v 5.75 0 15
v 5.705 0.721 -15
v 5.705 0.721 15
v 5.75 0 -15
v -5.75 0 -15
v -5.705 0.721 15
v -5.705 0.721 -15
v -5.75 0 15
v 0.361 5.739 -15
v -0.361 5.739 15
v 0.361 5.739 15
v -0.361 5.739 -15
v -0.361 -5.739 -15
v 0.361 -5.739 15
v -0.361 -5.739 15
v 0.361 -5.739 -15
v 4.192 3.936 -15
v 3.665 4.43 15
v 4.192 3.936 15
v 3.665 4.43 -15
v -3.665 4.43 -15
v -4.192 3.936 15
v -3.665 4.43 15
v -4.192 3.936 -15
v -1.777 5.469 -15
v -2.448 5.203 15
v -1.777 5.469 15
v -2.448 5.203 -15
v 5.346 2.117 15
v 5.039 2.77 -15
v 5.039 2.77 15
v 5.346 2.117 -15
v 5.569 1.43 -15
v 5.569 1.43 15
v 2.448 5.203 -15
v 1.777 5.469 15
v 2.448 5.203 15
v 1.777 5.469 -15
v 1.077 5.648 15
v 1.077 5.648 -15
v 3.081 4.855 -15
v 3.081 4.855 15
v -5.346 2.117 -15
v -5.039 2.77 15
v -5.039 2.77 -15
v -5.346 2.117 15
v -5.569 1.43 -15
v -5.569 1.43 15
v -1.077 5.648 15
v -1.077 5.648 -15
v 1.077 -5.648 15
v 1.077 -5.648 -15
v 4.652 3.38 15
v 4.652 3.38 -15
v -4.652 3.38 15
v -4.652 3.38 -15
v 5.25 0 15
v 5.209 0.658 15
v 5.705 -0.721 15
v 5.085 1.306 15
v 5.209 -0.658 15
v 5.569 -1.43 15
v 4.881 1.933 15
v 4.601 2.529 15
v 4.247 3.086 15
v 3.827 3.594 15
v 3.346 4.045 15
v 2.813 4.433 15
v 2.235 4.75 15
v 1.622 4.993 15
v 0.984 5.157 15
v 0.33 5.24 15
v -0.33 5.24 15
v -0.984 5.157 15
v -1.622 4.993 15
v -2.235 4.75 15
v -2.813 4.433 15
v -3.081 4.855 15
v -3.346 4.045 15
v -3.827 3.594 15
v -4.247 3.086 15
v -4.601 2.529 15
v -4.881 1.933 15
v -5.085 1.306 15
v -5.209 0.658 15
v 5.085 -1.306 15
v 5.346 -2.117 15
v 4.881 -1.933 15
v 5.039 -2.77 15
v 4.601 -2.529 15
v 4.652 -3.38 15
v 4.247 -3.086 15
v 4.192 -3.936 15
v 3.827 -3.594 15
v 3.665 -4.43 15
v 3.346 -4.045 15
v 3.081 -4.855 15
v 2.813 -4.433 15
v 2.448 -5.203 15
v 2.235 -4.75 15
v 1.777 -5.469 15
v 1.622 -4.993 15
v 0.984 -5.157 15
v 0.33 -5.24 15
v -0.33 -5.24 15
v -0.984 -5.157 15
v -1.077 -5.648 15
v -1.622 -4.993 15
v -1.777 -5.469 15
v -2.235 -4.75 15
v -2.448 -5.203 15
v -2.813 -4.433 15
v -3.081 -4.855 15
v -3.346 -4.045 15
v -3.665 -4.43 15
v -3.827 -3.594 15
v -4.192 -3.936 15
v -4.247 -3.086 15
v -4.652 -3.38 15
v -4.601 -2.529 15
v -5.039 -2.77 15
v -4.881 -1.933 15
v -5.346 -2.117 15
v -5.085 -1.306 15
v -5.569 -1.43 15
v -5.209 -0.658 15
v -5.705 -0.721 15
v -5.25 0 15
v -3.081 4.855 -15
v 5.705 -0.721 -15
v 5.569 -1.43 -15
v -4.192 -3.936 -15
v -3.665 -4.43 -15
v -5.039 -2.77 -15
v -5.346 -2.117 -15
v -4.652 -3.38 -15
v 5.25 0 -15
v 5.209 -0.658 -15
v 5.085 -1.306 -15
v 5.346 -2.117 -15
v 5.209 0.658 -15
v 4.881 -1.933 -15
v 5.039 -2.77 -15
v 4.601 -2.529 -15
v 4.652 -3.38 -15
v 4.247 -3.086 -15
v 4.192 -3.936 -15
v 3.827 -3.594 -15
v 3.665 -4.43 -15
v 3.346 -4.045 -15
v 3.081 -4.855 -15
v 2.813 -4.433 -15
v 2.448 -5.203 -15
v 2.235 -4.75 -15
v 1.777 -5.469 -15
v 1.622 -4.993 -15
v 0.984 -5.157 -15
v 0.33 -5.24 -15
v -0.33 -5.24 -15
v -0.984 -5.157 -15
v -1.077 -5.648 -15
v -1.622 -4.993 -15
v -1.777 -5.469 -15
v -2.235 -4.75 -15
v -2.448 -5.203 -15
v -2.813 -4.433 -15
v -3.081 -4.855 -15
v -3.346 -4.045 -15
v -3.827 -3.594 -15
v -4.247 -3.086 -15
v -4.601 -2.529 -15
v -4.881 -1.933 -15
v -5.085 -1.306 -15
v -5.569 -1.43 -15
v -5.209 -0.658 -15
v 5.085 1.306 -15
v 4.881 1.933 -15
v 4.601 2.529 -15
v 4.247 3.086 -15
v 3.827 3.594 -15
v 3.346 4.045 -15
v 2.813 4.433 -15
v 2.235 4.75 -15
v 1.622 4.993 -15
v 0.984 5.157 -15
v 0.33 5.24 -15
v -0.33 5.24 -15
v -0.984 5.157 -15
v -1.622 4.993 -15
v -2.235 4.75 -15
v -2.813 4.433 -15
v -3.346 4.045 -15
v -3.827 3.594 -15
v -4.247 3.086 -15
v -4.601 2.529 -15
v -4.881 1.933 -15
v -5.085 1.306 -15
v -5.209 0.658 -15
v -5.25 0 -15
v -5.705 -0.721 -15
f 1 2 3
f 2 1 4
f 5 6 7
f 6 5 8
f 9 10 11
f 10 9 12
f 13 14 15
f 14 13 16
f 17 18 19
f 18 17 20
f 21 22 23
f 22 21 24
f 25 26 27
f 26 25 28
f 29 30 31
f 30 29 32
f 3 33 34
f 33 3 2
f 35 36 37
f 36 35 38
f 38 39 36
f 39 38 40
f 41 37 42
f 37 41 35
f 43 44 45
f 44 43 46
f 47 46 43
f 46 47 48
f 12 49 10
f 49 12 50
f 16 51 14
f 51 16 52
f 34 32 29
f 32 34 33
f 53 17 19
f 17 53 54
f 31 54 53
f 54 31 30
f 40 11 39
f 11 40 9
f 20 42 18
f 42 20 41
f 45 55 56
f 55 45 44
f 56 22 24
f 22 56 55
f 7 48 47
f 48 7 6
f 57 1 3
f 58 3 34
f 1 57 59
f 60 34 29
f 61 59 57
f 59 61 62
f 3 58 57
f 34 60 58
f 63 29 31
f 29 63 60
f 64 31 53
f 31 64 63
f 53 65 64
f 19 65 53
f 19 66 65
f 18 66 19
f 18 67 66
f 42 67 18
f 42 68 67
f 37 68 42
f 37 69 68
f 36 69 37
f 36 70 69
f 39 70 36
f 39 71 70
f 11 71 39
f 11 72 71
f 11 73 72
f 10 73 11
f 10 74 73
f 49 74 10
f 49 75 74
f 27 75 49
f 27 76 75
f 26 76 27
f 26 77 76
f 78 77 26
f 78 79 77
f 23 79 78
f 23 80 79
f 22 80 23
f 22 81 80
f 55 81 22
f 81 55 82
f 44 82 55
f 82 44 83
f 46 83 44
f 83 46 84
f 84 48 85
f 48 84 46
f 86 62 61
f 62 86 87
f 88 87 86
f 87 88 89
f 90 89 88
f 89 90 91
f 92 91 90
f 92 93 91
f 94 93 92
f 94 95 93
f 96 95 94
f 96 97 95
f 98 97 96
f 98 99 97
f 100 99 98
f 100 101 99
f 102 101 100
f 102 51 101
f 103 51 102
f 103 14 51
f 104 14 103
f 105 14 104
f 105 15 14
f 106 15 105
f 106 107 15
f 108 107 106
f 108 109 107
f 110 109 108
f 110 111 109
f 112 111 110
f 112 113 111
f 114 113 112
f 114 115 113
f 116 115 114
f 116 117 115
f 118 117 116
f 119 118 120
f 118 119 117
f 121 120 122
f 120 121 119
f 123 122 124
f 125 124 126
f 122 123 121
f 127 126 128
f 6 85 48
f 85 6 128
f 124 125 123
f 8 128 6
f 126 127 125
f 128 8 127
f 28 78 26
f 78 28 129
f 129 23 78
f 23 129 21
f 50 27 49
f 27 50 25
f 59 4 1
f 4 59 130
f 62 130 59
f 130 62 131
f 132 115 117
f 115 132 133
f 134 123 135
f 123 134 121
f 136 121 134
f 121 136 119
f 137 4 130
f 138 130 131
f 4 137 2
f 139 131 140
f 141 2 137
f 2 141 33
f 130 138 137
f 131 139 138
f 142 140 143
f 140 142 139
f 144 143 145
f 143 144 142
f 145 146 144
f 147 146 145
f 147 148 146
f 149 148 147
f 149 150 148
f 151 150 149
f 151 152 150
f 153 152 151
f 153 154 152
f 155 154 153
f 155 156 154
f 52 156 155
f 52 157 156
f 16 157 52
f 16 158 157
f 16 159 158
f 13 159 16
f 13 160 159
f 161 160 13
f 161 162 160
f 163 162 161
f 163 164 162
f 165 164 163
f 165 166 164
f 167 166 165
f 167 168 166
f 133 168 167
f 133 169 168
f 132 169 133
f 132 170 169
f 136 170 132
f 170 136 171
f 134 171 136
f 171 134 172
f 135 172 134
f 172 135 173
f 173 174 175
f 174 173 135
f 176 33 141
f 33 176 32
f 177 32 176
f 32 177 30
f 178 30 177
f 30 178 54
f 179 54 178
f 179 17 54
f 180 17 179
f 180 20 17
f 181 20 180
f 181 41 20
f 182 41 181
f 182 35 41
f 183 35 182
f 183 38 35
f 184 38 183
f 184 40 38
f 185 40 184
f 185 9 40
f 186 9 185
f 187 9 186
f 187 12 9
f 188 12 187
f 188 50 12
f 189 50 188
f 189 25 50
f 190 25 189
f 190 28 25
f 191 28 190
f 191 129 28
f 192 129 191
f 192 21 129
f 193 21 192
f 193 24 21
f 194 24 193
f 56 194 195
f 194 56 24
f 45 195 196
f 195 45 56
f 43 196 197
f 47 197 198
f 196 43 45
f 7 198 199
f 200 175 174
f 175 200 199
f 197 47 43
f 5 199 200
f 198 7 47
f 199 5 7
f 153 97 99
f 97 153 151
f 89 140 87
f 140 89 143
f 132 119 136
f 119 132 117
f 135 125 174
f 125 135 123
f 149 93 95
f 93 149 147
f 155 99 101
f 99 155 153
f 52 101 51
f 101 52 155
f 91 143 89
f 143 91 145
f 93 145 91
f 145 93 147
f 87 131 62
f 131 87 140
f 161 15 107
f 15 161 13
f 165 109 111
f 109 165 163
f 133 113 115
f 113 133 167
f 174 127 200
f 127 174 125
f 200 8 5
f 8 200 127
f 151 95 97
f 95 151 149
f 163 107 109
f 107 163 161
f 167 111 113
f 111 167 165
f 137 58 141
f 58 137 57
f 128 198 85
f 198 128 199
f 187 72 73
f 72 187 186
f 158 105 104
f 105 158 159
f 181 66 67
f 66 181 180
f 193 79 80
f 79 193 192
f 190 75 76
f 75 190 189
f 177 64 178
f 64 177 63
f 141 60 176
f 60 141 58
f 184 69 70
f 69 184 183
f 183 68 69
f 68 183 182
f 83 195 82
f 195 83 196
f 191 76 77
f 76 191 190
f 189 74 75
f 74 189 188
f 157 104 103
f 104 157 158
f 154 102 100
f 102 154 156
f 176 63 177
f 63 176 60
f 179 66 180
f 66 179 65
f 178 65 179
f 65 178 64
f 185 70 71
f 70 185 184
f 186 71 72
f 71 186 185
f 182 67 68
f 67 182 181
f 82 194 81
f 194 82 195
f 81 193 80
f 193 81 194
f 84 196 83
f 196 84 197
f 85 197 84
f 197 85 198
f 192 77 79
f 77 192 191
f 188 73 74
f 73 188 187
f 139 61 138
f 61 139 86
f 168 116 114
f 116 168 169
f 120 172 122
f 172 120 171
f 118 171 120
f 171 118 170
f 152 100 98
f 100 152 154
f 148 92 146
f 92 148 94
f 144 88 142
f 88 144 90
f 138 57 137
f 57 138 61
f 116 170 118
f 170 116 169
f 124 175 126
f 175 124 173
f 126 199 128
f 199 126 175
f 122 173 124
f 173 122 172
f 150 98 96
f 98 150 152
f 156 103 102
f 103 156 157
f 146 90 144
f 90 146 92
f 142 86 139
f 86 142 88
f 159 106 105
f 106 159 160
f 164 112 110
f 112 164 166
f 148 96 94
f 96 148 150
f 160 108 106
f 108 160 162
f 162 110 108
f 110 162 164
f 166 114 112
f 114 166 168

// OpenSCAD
$fn = 50;


difference() {
	union() {
		translate(v = [0, 0, -15.0000000000]) {
			cylinder(h = 30, r = 5.7500000000);
		}
	}
	union() {
		translate(v = [0, 0, -100.0000000000]) {
			cylinder(h = 200, r = 5.2500000000);
		}
	}
}
